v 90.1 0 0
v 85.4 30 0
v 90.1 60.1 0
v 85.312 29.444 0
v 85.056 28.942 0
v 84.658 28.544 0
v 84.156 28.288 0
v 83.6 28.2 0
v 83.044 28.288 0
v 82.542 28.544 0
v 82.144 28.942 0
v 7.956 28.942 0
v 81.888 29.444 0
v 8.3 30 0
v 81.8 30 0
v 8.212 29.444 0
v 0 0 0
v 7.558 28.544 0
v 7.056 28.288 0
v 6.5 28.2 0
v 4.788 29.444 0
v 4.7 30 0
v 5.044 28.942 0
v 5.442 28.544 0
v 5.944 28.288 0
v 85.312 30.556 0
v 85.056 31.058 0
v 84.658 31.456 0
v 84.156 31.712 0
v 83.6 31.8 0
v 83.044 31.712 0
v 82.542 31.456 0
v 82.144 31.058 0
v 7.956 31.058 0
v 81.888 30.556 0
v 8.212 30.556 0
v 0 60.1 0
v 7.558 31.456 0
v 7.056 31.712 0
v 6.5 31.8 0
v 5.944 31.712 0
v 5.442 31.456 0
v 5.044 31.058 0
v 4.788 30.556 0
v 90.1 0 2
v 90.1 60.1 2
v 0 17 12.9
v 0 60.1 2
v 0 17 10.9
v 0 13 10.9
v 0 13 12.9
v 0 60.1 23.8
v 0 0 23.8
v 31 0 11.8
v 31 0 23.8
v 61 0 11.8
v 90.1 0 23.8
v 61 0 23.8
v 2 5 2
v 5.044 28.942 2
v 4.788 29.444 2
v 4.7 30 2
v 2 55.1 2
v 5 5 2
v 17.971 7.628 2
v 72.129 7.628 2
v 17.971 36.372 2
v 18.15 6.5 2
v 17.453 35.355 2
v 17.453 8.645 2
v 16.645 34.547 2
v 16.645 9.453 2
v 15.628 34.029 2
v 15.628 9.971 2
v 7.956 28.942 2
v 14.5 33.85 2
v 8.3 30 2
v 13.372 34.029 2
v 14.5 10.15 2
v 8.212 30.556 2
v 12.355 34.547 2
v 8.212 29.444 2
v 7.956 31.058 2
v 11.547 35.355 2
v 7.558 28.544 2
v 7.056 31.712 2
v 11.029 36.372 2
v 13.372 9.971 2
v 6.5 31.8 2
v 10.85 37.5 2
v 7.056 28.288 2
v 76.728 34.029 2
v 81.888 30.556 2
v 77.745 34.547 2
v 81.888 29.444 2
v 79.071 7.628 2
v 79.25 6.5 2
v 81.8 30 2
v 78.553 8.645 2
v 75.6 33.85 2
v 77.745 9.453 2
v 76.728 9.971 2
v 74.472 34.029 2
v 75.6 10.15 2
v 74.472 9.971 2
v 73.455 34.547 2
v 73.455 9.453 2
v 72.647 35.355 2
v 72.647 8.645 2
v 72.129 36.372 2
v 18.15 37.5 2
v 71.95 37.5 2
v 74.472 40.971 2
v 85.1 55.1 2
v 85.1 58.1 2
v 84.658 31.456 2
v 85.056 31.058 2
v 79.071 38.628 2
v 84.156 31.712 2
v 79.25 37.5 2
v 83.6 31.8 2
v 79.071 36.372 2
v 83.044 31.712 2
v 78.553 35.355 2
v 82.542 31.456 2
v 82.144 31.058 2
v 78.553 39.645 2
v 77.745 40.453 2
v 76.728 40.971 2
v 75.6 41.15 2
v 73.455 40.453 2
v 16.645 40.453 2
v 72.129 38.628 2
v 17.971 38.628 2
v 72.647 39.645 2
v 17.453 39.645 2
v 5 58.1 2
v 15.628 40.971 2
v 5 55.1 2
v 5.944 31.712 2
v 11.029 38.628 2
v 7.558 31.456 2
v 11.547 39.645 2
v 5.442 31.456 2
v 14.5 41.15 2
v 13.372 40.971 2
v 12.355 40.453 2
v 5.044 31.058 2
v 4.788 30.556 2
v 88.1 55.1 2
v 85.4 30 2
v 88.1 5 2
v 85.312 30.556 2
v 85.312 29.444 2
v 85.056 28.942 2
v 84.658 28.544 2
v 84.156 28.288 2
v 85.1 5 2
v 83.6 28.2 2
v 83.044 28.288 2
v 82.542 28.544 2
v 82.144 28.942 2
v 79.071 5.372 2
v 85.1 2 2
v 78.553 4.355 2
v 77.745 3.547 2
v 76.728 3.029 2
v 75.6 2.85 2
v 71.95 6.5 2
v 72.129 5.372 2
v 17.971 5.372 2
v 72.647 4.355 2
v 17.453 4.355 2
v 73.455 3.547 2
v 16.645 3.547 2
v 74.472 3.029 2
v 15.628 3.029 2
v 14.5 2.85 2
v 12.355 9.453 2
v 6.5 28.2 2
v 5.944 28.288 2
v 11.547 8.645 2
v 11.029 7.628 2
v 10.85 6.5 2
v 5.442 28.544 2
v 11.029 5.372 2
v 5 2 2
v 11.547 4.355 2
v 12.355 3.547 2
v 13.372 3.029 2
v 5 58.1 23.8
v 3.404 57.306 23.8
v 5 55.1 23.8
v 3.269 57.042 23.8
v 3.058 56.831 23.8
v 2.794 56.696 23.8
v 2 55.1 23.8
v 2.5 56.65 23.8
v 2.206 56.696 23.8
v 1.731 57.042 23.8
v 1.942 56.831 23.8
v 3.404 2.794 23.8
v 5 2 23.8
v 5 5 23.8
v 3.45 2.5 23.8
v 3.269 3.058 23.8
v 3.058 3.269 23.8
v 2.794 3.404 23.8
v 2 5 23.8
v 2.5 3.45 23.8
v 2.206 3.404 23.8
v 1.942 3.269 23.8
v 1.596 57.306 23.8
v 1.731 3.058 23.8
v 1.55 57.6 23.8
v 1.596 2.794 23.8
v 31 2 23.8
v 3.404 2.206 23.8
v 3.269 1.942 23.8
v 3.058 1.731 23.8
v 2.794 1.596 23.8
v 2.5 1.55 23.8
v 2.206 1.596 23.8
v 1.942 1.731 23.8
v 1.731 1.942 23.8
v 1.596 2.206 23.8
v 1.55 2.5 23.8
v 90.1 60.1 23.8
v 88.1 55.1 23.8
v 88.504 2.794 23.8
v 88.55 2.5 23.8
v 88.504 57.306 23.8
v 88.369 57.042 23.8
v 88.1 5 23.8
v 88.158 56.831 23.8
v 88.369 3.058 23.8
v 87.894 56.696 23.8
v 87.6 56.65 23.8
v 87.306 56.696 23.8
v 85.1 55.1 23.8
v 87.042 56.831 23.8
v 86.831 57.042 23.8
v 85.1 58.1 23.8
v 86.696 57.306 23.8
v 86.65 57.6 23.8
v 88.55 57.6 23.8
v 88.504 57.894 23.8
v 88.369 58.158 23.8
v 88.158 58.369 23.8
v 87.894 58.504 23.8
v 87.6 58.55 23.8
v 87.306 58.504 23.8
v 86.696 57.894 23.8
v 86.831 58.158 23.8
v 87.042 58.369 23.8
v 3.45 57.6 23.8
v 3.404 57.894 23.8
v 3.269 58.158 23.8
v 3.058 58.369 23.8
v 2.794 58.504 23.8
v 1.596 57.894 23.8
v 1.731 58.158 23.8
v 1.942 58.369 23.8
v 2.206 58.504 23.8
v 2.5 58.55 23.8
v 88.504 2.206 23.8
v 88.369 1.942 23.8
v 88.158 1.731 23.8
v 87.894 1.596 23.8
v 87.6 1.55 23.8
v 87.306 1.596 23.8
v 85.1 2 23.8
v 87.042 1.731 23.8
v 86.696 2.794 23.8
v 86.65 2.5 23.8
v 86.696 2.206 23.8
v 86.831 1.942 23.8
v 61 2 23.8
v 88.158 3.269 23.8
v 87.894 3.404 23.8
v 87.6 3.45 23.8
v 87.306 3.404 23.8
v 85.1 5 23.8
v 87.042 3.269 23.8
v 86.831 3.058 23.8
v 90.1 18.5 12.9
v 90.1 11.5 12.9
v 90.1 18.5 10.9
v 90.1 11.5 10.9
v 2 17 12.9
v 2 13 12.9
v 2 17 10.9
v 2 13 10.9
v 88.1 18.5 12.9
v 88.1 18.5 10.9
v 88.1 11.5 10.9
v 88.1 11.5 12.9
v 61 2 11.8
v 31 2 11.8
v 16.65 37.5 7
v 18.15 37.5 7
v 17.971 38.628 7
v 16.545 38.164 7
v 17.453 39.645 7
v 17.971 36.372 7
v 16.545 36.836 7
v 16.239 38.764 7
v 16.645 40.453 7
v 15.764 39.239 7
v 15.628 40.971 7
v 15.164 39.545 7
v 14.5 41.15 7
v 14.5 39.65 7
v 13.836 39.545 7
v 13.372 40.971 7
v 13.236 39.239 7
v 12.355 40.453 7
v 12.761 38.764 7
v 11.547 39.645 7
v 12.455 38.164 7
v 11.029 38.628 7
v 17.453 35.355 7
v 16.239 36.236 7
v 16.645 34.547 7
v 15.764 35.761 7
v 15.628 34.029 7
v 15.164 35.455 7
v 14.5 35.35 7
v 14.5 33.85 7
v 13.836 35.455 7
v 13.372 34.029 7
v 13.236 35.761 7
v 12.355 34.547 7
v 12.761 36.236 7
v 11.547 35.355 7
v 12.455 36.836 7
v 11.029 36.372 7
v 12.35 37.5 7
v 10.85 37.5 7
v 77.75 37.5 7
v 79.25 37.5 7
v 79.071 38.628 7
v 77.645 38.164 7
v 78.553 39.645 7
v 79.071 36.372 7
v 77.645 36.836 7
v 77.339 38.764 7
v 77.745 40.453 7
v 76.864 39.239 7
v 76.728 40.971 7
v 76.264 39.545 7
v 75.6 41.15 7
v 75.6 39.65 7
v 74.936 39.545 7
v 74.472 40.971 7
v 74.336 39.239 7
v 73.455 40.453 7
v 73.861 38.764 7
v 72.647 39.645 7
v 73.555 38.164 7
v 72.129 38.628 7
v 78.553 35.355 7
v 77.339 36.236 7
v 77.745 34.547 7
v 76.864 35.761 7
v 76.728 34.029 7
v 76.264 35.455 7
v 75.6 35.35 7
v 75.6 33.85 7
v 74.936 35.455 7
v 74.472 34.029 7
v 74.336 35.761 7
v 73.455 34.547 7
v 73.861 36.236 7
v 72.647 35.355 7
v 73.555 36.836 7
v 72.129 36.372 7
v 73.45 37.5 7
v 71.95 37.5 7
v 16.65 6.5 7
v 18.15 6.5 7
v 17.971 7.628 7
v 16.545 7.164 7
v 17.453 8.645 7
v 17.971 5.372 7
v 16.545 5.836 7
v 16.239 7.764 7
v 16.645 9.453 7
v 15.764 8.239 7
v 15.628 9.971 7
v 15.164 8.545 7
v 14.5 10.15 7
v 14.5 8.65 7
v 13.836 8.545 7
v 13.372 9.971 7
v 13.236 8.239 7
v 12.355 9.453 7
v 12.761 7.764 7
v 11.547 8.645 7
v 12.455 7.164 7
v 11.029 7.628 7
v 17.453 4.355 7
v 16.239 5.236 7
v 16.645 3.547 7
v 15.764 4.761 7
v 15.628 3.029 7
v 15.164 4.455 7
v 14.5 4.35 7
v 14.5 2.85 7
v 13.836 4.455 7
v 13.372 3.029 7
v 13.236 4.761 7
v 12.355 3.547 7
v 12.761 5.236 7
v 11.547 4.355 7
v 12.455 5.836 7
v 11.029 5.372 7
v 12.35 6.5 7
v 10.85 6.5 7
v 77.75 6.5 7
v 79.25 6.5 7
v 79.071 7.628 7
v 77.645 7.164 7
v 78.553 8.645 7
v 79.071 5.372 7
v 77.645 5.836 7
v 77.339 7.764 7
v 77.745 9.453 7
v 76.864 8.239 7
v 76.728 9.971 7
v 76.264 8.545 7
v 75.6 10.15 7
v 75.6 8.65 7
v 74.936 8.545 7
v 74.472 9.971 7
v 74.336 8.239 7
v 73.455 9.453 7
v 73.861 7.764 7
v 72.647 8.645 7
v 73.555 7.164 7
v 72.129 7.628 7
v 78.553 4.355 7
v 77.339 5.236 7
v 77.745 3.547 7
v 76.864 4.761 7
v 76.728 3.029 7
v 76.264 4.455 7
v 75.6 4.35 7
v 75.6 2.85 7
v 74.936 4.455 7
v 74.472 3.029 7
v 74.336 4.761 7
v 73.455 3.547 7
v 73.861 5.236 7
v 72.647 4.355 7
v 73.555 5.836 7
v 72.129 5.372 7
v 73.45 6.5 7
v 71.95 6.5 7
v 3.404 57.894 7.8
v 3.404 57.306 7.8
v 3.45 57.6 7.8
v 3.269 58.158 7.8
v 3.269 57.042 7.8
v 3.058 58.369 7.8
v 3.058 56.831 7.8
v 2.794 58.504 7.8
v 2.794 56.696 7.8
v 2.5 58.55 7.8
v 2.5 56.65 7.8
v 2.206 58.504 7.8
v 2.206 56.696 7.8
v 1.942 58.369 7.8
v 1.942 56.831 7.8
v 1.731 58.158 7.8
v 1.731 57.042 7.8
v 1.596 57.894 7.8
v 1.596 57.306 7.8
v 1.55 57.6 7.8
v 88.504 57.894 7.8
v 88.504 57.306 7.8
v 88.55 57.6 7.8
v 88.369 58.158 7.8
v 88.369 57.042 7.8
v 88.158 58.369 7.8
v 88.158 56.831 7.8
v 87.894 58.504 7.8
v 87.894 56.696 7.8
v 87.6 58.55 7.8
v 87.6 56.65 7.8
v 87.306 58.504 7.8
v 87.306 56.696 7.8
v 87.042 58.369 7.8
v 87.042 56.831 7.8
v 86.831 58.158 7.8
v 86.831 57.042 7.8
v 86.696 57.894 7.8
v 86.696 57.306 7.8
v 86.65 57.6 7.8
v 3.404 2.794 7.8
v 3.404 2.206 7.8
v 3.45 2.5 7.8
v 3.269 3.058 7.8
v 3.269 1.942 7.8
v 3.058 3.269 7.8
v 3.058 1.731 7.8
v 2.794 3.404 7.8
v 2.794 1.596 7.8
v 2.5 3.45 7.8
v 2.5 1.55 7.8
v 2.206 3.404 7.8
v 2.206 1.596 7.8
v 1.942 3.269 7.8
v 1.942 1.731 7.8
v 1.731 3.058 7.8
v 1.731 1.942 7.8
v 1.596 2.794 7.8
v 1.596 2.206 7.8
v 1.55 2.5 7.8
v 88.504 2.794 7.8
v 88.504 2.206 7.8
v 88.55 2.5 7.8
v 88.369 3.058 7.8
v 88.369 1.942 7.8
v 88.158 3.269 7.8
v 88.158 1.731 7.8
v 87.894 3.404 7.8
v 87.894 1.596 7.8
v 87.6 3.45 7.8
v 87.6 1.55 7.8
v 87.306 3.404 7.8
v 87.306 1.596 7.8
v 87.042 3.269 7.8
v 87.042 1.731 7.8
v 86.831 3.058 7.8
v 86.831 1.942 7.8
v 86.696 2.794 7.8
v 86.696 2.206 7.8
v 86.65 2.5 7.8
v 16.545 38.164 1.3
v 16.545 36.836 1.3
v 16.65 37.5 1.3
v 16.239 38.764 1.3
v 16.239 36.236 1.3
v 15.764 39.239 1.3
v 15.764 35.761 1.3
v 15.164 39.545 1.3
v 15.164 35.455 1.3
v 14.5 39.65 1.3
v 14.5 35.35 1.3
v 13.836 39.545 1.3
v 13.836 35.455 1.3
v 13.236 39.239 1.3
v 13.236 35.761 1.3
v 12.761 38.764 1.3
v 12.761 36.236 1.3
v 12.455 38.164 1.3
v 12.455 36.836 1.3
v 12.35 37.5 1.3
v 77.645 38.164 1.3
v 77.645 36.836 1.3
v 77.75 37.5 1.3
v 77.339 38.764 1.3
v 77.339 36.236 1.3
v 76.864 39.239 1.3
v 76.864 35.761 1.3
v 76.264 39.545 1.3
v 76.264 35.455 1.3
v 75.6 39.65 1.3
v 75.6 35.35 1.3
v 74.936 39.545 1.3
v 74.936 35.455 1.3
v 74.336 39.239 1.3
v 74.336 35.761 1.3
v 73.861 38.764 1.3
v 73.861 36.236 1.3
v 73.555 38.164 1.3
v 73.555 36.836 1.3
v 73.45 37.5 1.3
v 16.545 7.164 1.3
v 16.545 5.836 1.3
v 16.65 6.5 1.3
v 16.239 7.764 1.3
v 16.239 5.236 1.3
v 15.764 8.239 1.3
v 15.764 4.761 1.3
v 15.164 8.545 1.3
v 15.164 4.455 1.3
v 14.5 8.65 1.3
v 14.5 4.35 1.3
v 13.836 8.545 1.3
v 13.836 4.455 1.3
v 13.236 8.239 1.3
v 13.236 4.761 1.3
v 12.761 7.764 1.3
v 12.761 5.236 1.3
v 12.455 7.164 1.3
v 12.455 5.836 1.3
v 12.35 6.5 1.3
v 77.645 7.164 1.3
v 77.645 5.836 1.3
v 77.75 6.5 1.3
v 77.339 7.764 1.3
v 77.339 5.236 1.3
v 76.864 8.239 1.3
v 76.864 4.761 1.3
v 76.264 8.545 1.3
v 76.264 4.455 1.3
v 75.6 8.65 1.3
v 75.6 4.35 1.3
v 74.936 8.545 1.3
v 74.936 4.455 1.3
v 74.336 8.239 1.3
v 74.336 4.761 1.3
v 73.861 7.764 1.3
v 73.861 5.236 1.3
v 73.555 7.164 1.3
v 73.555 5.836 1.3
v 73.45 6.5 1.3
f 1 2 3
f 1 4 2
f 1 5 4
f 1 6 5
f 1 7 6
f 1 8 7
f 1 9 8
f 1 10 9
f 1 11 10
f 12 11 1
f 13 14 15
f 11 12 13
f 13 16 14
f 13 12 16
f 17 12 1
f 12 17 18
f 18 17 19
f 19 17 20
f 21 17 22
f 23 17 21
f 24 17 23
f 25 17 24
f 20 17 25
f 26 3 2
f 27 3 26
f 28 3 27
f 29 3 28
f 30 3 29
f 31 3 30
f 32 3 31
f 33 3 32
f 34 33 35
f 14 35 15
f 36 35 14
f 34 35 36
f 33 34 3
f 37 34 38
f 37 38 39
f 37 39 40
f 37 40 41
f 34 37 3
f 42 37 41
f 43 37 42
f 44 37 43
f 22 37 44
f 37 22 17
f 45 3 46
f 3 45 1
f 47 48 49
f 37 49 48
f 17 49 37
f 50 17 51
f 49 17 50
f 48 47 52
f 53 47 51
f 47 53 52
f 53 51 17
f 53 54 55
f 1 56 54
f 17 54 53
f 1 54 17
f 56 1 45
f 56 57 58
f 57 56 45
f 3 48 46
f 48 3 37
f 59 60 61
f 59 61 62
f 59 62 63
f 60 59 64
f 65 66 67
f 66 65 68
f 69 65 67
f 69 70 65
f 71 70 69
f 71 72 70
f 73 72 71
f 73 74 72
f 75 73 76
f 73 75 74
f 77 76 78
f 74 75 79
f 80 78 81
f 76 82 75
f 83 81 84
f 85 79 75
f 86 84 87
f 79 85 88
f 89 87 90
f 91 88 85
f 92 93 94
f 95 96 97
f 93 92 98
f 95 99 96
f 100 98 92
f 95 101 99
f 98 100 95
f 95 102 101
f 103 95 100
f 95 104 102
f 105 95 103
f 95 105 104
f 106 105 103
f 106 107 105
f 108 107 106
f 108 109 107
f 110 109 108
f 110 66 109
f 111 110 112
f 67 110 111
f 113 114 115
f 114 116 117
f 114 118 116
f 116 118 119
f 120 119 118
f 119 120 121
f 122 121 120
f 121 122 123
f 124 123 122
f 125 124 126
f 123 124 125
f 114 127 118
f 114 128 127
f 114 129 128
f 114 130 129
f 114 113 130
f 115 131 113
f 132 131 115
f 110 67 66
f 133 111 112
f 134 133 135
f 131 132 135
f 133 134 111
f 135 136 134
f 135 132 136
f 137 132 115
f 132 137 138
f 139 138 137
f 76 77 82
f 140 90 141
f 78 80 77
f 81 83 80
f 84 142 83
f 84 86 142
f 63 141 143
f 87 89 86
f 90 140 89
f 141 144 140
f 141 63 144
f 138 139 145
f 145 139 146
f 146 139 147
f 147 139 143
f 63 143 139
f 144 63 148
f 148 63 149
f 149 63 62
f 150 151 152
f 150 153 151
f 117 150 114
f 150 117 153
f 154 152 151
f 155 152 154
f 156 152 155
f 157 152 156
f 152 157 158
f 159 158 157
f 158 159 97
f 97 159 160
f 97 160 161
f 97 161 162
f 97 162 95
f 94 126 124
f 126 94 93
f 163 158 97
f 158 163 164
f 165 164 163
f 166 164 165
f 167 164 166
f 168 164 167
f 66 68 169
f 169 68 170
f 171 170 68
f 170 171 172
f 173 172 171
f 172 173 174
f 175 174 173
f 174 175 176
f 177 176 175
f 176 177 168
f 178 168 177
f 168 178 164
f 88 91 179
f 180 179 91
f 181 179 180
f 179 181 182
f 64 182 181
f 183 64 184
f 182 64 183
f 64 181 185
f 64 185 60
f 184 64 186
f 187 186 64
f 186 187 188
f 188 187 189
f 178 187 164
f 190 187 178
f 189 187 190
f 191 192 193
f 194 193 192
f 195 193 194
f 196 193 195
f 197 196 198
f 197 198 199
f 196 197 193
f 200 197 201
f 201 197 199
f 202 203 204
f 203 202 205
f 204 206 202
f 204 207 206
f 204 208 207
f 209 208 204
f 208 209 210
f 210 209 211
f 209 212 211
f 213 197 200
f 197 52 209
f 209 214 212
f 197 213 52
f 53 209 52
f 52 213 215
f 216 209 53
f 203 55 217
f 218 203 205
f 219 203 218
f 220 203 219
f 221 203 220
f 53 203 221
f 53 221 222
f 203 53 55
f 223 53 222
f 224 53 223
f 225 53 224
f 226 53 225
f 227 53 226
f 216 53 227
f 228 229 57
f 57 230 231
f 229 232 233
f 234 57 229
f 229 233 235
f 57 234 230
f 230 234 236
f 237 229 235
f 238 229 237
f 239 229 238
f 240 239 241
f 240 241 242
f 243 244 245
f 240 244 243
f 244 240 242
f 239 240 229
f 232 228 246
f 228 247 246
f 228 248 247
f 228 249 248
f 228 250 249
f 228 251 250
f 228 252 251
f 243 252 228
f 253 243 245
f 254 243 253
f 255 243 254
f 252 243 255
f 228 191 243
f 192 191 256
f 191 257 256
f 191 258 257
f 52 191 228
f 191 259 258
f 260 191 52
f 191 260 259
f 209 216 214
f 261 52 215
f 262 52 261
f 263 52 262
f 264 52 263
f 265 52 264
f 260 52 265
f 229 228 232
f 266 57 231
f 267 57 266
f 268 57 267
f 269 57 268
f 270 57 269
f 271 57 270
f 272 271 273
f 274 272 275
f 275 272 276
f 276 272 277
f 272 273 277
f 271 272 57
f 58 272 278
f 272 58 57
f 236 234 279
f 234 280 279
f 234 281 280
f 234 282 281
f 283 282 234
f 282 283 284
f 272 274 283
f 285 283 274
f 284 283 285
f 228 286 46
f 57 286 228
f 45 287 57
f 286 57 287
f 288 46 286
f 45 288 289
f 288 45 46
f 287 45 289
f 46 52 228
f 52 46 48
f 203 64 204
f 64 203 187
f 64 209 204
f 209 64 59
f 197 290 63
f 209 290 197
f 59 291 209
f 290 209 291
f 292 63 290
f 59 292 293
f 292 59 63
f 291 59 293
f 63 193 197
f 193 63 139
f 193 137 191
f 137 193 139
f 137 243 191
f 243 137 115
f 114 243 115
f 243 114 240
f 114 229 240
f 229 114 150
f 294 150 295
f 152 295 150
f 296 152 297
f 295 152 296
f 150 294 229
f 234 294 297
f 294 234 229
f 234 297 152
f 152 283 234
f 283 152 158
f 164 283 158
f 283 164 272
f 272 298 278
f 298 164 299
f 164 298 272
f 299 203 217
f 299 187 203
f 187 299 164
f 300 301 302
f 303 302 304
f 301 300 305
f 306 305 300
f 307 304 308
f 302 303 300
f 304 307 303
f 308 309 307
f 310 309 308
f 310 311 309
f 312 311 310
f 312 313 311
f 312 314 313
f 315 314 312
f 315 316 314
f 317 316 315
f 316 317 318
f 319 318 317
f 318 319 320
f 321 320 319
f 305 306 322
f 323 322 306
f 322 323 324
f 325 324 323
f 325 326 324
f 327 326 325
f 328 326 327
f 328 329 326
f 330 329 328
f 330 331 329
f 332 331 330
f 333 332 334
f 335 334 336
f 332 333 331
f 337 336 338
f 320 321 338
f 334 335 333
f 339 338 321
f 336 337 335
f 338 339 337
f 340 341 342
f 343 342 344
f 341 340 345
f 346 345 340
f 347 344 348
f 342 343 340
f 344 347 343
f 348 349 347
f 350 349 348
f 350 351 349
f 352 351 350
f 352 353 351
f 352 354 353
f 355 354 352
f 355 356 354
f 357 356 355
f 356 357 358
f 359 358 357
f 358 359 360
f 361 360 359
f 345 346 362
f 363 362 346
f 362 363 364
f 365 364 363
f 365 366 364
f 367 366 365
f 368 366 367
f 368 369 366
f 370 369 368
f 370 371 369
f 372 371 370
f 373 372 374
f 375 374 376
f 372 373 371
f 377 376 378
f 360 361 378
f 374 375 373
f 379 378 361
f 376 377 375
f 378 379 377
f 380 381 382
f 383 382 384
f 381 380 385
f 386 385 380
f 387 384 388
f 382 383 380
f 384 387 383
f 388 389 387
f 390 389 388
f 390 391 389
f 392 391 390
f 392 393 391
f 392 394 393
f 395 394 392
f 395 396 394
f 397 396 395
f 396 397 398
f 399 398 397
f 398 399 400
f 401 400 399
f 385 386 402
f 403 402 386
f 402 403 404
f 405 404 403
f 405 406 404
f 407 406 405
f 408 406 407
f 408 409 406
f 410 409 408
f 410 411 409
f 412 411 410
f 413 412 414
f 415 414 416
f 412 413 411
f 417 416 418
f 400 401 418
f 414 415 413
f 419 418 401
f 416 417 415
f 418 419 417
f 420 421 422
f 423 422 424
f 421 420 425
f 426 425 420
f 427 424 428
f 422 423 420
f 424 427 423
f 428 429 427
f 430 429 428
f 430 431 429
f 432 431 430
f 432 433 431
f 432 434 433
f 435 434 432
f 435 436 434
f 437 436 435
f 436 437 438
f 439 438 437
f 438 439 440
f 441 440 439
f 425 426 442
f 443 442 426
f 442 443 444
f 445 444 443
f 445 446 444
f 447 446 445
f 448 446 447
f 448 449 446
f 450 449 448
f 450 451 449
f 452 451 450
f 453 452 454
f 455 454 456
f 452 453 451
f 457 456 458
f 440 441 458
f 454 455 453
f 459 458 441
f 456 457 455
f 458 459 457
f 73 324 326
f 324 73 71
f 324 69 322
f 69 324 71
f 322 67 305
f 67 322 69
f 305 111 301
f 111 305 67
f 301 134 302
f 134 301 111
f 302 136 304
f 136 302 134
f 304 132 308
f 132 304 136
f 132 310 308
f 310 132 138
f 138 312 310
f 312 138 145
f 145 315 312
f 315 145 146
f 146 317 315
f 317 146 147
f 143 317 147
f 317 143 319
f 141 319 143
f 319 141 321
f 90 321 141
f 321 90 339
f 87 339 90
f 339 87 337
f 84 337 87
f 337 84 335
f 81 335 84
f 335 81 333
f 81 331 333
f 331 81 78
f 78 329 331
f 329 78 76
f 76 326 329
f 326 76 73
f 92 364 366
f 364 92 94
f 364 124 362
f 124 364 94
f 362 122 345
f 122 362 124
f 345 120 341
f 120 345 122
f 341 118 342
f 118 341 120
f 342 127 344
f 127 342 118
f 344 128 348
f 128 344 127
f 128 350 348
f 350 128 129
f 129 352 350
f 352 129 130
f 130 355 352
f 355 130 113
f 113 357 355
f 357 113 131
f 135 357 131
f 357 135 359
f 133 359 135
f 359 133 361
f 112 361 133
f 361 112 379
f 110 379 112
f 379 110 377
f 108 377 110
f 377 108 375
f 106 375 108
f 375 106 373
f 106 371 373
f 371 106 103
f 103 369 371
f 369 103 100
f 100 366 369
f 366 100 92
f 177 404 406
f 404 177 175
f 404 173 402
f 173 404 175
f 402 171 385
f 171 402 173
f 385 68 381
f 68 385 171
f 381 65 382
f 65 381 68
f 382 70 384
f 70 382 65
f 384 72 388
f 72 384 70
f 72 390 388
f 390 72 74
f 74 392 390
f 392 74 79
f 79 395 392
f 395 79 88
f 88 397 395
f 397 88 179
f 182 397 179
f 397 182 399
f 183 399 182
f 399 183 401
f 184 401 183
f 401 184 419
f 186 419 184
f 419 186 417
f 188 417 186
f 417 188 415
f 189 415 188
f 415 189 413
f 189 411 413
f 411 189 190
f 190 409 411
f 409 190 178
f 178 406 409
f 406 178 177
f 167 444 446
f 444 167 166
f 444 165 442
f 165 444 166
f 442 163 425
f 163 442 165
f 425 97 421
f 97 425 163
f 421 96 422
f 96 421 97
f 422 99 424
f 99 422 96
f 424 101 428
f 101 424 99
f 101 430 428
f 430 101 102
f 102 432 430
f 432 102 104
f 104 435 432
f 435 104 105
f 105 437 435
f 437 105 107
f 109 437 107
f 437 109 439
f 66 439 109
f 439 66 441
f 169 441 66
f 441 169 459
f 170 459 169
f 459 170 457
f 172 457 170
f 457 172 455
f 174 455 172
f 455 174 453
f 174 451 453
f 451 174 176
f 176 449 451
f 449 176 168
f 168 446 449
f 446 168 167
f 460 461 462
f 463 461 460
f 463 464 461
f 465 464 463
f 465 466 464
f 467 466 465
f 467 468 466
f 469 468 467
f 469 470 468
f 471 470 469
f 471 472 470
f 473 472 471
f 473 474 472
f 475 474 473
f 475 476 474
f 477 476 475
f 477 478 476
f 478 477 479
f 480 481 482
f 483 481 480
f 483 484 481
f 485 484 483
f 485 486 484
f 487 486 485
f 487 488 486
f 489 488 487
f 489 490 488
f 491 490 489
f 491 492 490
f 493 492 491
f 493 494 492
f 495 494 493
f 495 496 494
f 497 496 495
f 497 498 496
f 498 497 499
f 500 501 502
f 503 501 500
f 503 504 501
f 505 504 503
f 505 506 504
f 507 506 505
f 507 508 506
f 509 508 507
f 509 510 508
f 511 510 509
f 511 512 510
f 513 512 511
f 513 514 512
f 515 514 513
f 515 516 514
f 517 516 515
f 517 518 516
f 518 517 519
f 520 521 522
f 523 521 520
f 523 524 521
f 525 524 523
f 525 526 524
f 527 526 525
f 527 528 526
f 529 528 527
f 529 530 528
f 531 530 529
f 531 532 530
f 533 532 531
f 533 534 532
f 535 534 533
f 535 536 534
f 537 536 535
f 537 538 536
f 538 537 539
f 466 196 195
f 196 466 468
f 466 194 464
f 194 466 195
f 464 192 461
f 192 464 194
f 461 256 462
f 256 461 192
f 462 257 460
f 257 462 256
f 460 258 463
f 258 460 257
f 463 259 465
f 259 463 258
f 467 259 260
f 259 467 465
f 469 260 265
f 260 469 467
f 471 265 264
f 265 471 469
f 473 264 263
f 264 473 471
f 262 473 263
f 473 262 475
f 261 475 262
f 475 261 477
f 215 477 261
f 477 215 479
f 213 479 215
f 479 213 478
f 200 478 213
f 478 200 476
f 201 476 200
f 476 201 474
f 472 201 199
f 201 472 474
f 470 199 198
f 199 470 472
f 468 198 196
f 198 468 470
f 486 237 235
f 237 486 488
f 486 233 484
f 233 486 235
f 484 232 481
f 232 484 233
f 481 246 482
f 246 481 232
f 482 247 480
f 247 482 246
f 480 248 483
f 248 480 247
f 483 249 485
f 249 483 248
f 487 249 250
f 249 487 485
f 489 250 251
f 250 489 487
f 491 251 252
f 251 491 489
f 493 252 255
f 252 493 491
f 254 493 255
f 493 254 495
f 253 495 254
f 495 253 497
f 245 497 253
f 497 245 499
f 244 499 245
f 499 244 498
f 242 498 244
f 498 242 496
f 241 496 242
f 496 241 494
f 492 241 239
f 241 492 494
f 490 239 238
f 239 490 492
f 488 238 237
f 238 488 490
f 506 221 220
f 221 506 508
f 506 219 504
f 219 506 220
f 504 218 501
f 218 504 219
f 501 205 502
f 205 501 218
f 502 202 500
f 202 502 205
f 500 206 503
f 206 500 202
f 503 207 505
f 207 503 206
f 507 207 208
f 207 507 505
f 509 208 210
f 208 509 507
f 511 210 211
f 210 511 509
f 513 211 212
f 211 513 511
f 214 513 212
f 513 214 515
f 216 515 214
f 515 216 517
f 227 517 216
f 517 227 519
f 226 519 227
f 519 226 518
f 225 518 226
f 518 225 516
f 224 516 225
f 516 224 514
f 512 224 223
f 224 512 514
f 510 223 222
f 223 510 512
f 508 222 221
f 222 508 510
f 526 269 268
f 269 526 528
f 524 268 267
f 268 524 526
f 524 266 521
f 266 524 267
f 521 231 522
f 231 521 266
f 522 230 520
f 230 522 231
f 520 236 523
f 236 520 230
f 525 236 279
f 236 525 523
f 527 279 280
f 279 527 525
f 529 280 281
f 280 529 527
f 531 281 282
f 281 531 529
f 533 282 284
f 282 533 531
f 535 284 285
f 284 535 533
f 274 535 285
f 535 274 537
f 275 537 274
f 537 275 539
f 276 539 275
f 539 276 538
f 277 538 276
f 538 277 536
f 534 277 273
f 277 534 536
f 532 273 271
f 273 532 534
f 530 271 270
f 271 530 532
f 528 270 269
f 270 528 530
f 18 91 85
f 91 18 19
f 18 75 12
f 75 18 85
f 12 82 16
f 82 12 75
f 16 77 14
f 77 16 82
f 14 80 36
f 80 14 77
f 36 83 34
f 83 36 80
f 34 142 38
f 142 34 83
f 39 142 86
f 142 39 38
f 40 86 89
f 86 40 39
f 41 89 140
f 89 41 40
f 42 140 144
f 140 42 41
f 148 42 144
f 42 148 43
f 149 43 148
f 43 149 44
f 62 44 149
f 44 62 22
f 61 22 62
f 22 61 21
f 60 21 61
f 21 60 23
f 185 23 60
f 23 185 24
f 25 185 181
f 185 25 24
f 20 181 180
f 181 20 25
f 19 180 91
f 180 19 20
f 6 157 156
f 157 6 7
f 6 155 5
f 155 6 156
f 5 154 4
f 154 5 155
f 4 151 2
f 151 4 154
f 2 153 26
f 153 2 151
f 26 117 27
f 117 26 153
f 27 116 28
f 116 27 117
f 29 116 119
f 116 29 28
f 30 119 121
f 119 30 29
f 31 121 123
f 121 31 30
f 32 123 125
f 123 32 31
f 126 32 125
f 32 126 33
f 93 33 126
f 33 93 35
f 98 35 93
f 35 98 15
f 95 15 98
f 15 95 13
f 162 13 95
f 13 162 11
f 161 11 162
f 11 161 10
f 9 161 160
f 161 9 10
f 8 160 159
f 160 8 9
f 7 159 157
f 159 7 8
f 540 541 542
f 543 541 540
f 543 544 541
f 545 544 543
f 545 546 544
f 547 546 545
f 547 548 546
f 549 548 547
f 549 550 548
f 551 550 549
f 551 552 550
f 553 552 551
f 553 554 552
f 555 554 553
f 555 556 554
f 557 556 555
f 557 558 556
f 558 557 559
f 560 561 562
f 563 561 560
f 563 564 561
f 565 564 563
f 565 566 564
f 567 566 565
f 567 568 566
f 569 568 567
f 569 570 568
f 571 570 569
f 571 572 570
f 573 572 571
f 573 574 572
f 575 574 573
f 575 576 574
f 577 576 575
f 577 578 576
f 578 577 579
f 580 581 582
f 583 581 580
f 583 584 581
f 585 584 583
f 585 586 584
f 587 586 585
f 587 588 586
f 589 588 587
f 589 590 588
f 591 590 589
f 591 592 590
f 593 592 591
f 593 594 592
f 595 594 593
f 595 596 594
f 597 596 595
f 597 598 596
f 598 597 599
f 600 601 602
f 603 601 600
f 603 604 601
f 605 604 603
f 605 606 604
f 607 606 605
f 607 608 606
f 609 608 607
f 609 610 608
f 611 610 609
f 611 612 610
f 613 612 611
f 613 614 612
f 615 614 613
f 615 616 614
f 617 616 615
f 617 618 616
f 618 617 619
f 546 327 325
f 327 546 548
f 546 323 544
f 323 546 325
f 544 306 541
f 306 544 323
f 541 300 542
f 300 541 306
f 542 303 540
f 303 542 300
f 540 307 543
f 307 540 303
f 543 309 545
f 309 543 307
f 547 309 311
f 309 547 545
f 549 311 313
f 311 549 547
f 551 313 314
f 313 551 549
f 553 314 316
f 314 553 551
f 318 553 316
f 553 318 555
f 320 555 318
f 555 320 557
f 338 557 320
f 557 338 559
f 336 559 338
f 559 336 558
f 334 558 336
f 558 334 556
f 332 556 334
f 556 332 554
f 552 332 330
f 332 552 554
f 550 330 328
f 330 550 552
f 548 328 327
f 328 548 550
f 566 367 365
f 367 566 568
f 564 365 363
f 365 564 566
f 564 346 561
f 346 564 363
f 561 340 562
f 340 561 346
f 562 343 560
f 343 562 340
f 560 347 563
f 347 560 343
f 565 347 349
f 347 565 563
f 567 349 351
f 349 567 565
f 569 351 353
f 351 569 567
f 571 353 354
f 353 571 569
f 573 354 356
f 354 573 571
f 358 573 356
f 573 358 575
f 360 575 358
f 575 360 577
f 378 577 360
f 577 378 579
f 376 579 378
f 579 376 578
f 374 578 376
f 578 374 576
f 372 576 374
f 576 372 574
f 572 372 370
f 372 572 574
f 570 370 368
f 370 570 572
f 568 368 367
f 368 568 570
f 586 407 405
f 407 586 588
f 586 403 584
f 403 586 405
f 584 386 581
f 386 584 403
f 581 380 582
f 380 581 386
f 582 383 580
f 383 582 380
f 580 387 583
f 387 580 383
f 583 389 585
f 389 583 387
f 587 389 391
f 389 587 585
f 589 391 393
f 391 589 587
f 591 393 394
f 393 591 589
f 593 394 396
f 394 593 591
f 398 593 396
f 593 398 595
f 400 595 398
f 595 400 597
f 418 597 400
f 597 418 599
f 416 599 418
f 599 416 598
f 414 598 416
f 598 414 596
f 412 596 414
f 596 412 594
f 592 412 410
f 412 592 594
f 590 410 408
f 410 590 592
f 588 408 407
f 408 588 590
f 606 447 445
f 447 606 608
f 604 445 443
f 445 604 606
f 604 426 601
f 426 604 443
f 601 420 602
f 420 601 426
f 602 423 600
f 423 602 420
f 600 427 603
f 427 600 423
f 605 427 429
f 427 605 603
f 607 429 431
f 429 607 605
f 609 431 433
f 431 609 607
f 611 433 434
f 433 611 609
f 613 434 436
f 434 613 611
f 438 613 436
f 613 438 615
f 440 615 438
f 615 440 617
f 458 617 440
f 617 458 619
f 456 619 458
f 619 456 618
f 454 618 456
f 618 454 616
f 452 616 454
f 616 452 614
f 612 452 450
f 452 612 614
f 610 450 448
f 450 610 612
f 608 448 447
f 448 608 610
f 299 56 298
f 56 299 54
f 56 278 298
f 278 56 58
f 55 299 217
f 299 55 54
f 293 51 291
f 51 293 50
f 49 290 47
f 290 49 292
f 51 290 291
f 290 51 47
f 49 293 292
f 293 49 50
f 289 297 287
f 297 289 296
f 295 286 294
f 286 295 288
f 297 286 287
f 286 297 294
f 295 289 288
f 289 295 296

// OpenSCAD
// file: config.scad
pcb_length = 66.1;
pcb_width = 36.1;
pcb_height = 15;

thread_base_height = 7;
thread_base_d = 7.3;

thread_hole_height = 5.7;
thread_hole_d = 4.3;

length = pcb_length + 24;
width = pcb_width + 8 + 16;
height = pcb_height + thread_base_height + 1.8;

display_cut_x = 31;
display_cut_height = pcb_height - 3;
display_cut_length = 30;

wall_thickness = 2;
box_bolt_size = 5;
box_bolt = 1.9;

pcb_hole_abs_d = 2.5;

h1_x = 12 + pcb_hole_abs_d;
h1_y = 4 + pcb_hole_abs_d;
h2_x = length - 12 - pcb_hole_abs_d;
h2_y = h1_y;
h3_x = h1_x;
h3_y = 4 + pcb_hole_abs_d + 31 /* space between length holes */; 
h4_x = h2_x;
h4_y = h3_y;
// main file
include <config.scad>

difference() {
    union() {
        linear_extrude(wall_thickness) {
            // base
            square([length, width]);
        }

        linear_extrude(height) {
            // sides
            square([length, wall_thickness]);
            square([wall_thickness, width]);
            translate([0, width - wall_thickness, 0])
                square([length, wall_thickness]);
            translate([length - wall_thickness, 0, 0])
                square([wall_thickness, width]);

            // box bolt bases
            square([box_bolt_size, box_bolt_size]);
            translate([0, width - box_bolt_size, 0])
                square([box_bolt_size, box_bolt_size]);
            translate([length - box_bolt_size, 0, 0])
                square([box_bolt_size, box_bolt_size]);
            translate([length - box_bolt_size, width - box_bolt_size, 0])
                square([box_bolt_size, box_bolt_size]);
        }

        // pcb bolt bases
        linear_extrude(thread_base_height) {
            translate([h1_x, h1_y, 0])
                circle(d=thread_base_d, $fn=20);
            translate([h2_x, h2_y, 0])
                circle(d=thread_base_d, $fn=20);
            translate([h3_x, h3_y, 0])
                circle(d=thread_base_d, $fn=20);
            translate([h4_x, h4_y, 0])
                circle(d=thread_base_d, $fn=20);
        }
    }

    translate([0, 0, height - 16]) {
        linear_extrude(16) {
            translate([box_bolt_size/2, box_bolt_size/2, 0])
                circle(d=box_bolt, $fn=20);
            translate([box_bolt_size/2, width - (box_bolt_size/2), 0])
                circle(d=box_bolt, $fn=20);
            translate([length - (box_bolt_size/2), box_bolt_size/2, 0])
                circle(d=box_bolt, $fn=20);
            translate([length - (box_bolt_size/2), width - (box_bolt_size/2), 0])
                circle(d=box_bolt, $fn=20);
        }
    }

    linear_extrude(wall_thickness) {
        translate([6.5, 30, 0])
            circle(d=3.6, $fn=20);
        translate([length - 6.5, 30, 0])
            circle(d=3.6, $fn=20);
    }

    translate([0, 0, thread_base_height - thread_hole_height]) {
        linear_extrude(thread_hole_height) {
            translate([h1_x, h1_y, 0])
                circle(d=thread_hole_d, $fn=20);
            translate([h2_x, h2_y, 0])
                circle(d=thread_hole_d, $fn=20);
            translate([h3_x, h3_y, 0])
                circle(d=thread_hole_d, $fn=20);
            translate([h4_x, h4_y, 0])
                circle(d=thread_hole_d, $fn=20);
        }
    }

    translate([0, 0, height - display_cut_height])
        linear_extrude(display_cut_height)
            translate([display_cut_x, 0, 0])
                square([display_cut_length, wall_thickness]);

    rotate([-90, 0, -90])
        linear_extrude(wall_thickness)
            translate([-15, -height/2, 0])
                square([4, 2], center=true);

    translate([length - wall_thickness - 1, 0, 0])
        rotate([-90, 0, -90])
            linear_extrude(wall_thickness + 1)
                translate([-15, -height/2, 0])
                    square([7, 2], center=true);
}
